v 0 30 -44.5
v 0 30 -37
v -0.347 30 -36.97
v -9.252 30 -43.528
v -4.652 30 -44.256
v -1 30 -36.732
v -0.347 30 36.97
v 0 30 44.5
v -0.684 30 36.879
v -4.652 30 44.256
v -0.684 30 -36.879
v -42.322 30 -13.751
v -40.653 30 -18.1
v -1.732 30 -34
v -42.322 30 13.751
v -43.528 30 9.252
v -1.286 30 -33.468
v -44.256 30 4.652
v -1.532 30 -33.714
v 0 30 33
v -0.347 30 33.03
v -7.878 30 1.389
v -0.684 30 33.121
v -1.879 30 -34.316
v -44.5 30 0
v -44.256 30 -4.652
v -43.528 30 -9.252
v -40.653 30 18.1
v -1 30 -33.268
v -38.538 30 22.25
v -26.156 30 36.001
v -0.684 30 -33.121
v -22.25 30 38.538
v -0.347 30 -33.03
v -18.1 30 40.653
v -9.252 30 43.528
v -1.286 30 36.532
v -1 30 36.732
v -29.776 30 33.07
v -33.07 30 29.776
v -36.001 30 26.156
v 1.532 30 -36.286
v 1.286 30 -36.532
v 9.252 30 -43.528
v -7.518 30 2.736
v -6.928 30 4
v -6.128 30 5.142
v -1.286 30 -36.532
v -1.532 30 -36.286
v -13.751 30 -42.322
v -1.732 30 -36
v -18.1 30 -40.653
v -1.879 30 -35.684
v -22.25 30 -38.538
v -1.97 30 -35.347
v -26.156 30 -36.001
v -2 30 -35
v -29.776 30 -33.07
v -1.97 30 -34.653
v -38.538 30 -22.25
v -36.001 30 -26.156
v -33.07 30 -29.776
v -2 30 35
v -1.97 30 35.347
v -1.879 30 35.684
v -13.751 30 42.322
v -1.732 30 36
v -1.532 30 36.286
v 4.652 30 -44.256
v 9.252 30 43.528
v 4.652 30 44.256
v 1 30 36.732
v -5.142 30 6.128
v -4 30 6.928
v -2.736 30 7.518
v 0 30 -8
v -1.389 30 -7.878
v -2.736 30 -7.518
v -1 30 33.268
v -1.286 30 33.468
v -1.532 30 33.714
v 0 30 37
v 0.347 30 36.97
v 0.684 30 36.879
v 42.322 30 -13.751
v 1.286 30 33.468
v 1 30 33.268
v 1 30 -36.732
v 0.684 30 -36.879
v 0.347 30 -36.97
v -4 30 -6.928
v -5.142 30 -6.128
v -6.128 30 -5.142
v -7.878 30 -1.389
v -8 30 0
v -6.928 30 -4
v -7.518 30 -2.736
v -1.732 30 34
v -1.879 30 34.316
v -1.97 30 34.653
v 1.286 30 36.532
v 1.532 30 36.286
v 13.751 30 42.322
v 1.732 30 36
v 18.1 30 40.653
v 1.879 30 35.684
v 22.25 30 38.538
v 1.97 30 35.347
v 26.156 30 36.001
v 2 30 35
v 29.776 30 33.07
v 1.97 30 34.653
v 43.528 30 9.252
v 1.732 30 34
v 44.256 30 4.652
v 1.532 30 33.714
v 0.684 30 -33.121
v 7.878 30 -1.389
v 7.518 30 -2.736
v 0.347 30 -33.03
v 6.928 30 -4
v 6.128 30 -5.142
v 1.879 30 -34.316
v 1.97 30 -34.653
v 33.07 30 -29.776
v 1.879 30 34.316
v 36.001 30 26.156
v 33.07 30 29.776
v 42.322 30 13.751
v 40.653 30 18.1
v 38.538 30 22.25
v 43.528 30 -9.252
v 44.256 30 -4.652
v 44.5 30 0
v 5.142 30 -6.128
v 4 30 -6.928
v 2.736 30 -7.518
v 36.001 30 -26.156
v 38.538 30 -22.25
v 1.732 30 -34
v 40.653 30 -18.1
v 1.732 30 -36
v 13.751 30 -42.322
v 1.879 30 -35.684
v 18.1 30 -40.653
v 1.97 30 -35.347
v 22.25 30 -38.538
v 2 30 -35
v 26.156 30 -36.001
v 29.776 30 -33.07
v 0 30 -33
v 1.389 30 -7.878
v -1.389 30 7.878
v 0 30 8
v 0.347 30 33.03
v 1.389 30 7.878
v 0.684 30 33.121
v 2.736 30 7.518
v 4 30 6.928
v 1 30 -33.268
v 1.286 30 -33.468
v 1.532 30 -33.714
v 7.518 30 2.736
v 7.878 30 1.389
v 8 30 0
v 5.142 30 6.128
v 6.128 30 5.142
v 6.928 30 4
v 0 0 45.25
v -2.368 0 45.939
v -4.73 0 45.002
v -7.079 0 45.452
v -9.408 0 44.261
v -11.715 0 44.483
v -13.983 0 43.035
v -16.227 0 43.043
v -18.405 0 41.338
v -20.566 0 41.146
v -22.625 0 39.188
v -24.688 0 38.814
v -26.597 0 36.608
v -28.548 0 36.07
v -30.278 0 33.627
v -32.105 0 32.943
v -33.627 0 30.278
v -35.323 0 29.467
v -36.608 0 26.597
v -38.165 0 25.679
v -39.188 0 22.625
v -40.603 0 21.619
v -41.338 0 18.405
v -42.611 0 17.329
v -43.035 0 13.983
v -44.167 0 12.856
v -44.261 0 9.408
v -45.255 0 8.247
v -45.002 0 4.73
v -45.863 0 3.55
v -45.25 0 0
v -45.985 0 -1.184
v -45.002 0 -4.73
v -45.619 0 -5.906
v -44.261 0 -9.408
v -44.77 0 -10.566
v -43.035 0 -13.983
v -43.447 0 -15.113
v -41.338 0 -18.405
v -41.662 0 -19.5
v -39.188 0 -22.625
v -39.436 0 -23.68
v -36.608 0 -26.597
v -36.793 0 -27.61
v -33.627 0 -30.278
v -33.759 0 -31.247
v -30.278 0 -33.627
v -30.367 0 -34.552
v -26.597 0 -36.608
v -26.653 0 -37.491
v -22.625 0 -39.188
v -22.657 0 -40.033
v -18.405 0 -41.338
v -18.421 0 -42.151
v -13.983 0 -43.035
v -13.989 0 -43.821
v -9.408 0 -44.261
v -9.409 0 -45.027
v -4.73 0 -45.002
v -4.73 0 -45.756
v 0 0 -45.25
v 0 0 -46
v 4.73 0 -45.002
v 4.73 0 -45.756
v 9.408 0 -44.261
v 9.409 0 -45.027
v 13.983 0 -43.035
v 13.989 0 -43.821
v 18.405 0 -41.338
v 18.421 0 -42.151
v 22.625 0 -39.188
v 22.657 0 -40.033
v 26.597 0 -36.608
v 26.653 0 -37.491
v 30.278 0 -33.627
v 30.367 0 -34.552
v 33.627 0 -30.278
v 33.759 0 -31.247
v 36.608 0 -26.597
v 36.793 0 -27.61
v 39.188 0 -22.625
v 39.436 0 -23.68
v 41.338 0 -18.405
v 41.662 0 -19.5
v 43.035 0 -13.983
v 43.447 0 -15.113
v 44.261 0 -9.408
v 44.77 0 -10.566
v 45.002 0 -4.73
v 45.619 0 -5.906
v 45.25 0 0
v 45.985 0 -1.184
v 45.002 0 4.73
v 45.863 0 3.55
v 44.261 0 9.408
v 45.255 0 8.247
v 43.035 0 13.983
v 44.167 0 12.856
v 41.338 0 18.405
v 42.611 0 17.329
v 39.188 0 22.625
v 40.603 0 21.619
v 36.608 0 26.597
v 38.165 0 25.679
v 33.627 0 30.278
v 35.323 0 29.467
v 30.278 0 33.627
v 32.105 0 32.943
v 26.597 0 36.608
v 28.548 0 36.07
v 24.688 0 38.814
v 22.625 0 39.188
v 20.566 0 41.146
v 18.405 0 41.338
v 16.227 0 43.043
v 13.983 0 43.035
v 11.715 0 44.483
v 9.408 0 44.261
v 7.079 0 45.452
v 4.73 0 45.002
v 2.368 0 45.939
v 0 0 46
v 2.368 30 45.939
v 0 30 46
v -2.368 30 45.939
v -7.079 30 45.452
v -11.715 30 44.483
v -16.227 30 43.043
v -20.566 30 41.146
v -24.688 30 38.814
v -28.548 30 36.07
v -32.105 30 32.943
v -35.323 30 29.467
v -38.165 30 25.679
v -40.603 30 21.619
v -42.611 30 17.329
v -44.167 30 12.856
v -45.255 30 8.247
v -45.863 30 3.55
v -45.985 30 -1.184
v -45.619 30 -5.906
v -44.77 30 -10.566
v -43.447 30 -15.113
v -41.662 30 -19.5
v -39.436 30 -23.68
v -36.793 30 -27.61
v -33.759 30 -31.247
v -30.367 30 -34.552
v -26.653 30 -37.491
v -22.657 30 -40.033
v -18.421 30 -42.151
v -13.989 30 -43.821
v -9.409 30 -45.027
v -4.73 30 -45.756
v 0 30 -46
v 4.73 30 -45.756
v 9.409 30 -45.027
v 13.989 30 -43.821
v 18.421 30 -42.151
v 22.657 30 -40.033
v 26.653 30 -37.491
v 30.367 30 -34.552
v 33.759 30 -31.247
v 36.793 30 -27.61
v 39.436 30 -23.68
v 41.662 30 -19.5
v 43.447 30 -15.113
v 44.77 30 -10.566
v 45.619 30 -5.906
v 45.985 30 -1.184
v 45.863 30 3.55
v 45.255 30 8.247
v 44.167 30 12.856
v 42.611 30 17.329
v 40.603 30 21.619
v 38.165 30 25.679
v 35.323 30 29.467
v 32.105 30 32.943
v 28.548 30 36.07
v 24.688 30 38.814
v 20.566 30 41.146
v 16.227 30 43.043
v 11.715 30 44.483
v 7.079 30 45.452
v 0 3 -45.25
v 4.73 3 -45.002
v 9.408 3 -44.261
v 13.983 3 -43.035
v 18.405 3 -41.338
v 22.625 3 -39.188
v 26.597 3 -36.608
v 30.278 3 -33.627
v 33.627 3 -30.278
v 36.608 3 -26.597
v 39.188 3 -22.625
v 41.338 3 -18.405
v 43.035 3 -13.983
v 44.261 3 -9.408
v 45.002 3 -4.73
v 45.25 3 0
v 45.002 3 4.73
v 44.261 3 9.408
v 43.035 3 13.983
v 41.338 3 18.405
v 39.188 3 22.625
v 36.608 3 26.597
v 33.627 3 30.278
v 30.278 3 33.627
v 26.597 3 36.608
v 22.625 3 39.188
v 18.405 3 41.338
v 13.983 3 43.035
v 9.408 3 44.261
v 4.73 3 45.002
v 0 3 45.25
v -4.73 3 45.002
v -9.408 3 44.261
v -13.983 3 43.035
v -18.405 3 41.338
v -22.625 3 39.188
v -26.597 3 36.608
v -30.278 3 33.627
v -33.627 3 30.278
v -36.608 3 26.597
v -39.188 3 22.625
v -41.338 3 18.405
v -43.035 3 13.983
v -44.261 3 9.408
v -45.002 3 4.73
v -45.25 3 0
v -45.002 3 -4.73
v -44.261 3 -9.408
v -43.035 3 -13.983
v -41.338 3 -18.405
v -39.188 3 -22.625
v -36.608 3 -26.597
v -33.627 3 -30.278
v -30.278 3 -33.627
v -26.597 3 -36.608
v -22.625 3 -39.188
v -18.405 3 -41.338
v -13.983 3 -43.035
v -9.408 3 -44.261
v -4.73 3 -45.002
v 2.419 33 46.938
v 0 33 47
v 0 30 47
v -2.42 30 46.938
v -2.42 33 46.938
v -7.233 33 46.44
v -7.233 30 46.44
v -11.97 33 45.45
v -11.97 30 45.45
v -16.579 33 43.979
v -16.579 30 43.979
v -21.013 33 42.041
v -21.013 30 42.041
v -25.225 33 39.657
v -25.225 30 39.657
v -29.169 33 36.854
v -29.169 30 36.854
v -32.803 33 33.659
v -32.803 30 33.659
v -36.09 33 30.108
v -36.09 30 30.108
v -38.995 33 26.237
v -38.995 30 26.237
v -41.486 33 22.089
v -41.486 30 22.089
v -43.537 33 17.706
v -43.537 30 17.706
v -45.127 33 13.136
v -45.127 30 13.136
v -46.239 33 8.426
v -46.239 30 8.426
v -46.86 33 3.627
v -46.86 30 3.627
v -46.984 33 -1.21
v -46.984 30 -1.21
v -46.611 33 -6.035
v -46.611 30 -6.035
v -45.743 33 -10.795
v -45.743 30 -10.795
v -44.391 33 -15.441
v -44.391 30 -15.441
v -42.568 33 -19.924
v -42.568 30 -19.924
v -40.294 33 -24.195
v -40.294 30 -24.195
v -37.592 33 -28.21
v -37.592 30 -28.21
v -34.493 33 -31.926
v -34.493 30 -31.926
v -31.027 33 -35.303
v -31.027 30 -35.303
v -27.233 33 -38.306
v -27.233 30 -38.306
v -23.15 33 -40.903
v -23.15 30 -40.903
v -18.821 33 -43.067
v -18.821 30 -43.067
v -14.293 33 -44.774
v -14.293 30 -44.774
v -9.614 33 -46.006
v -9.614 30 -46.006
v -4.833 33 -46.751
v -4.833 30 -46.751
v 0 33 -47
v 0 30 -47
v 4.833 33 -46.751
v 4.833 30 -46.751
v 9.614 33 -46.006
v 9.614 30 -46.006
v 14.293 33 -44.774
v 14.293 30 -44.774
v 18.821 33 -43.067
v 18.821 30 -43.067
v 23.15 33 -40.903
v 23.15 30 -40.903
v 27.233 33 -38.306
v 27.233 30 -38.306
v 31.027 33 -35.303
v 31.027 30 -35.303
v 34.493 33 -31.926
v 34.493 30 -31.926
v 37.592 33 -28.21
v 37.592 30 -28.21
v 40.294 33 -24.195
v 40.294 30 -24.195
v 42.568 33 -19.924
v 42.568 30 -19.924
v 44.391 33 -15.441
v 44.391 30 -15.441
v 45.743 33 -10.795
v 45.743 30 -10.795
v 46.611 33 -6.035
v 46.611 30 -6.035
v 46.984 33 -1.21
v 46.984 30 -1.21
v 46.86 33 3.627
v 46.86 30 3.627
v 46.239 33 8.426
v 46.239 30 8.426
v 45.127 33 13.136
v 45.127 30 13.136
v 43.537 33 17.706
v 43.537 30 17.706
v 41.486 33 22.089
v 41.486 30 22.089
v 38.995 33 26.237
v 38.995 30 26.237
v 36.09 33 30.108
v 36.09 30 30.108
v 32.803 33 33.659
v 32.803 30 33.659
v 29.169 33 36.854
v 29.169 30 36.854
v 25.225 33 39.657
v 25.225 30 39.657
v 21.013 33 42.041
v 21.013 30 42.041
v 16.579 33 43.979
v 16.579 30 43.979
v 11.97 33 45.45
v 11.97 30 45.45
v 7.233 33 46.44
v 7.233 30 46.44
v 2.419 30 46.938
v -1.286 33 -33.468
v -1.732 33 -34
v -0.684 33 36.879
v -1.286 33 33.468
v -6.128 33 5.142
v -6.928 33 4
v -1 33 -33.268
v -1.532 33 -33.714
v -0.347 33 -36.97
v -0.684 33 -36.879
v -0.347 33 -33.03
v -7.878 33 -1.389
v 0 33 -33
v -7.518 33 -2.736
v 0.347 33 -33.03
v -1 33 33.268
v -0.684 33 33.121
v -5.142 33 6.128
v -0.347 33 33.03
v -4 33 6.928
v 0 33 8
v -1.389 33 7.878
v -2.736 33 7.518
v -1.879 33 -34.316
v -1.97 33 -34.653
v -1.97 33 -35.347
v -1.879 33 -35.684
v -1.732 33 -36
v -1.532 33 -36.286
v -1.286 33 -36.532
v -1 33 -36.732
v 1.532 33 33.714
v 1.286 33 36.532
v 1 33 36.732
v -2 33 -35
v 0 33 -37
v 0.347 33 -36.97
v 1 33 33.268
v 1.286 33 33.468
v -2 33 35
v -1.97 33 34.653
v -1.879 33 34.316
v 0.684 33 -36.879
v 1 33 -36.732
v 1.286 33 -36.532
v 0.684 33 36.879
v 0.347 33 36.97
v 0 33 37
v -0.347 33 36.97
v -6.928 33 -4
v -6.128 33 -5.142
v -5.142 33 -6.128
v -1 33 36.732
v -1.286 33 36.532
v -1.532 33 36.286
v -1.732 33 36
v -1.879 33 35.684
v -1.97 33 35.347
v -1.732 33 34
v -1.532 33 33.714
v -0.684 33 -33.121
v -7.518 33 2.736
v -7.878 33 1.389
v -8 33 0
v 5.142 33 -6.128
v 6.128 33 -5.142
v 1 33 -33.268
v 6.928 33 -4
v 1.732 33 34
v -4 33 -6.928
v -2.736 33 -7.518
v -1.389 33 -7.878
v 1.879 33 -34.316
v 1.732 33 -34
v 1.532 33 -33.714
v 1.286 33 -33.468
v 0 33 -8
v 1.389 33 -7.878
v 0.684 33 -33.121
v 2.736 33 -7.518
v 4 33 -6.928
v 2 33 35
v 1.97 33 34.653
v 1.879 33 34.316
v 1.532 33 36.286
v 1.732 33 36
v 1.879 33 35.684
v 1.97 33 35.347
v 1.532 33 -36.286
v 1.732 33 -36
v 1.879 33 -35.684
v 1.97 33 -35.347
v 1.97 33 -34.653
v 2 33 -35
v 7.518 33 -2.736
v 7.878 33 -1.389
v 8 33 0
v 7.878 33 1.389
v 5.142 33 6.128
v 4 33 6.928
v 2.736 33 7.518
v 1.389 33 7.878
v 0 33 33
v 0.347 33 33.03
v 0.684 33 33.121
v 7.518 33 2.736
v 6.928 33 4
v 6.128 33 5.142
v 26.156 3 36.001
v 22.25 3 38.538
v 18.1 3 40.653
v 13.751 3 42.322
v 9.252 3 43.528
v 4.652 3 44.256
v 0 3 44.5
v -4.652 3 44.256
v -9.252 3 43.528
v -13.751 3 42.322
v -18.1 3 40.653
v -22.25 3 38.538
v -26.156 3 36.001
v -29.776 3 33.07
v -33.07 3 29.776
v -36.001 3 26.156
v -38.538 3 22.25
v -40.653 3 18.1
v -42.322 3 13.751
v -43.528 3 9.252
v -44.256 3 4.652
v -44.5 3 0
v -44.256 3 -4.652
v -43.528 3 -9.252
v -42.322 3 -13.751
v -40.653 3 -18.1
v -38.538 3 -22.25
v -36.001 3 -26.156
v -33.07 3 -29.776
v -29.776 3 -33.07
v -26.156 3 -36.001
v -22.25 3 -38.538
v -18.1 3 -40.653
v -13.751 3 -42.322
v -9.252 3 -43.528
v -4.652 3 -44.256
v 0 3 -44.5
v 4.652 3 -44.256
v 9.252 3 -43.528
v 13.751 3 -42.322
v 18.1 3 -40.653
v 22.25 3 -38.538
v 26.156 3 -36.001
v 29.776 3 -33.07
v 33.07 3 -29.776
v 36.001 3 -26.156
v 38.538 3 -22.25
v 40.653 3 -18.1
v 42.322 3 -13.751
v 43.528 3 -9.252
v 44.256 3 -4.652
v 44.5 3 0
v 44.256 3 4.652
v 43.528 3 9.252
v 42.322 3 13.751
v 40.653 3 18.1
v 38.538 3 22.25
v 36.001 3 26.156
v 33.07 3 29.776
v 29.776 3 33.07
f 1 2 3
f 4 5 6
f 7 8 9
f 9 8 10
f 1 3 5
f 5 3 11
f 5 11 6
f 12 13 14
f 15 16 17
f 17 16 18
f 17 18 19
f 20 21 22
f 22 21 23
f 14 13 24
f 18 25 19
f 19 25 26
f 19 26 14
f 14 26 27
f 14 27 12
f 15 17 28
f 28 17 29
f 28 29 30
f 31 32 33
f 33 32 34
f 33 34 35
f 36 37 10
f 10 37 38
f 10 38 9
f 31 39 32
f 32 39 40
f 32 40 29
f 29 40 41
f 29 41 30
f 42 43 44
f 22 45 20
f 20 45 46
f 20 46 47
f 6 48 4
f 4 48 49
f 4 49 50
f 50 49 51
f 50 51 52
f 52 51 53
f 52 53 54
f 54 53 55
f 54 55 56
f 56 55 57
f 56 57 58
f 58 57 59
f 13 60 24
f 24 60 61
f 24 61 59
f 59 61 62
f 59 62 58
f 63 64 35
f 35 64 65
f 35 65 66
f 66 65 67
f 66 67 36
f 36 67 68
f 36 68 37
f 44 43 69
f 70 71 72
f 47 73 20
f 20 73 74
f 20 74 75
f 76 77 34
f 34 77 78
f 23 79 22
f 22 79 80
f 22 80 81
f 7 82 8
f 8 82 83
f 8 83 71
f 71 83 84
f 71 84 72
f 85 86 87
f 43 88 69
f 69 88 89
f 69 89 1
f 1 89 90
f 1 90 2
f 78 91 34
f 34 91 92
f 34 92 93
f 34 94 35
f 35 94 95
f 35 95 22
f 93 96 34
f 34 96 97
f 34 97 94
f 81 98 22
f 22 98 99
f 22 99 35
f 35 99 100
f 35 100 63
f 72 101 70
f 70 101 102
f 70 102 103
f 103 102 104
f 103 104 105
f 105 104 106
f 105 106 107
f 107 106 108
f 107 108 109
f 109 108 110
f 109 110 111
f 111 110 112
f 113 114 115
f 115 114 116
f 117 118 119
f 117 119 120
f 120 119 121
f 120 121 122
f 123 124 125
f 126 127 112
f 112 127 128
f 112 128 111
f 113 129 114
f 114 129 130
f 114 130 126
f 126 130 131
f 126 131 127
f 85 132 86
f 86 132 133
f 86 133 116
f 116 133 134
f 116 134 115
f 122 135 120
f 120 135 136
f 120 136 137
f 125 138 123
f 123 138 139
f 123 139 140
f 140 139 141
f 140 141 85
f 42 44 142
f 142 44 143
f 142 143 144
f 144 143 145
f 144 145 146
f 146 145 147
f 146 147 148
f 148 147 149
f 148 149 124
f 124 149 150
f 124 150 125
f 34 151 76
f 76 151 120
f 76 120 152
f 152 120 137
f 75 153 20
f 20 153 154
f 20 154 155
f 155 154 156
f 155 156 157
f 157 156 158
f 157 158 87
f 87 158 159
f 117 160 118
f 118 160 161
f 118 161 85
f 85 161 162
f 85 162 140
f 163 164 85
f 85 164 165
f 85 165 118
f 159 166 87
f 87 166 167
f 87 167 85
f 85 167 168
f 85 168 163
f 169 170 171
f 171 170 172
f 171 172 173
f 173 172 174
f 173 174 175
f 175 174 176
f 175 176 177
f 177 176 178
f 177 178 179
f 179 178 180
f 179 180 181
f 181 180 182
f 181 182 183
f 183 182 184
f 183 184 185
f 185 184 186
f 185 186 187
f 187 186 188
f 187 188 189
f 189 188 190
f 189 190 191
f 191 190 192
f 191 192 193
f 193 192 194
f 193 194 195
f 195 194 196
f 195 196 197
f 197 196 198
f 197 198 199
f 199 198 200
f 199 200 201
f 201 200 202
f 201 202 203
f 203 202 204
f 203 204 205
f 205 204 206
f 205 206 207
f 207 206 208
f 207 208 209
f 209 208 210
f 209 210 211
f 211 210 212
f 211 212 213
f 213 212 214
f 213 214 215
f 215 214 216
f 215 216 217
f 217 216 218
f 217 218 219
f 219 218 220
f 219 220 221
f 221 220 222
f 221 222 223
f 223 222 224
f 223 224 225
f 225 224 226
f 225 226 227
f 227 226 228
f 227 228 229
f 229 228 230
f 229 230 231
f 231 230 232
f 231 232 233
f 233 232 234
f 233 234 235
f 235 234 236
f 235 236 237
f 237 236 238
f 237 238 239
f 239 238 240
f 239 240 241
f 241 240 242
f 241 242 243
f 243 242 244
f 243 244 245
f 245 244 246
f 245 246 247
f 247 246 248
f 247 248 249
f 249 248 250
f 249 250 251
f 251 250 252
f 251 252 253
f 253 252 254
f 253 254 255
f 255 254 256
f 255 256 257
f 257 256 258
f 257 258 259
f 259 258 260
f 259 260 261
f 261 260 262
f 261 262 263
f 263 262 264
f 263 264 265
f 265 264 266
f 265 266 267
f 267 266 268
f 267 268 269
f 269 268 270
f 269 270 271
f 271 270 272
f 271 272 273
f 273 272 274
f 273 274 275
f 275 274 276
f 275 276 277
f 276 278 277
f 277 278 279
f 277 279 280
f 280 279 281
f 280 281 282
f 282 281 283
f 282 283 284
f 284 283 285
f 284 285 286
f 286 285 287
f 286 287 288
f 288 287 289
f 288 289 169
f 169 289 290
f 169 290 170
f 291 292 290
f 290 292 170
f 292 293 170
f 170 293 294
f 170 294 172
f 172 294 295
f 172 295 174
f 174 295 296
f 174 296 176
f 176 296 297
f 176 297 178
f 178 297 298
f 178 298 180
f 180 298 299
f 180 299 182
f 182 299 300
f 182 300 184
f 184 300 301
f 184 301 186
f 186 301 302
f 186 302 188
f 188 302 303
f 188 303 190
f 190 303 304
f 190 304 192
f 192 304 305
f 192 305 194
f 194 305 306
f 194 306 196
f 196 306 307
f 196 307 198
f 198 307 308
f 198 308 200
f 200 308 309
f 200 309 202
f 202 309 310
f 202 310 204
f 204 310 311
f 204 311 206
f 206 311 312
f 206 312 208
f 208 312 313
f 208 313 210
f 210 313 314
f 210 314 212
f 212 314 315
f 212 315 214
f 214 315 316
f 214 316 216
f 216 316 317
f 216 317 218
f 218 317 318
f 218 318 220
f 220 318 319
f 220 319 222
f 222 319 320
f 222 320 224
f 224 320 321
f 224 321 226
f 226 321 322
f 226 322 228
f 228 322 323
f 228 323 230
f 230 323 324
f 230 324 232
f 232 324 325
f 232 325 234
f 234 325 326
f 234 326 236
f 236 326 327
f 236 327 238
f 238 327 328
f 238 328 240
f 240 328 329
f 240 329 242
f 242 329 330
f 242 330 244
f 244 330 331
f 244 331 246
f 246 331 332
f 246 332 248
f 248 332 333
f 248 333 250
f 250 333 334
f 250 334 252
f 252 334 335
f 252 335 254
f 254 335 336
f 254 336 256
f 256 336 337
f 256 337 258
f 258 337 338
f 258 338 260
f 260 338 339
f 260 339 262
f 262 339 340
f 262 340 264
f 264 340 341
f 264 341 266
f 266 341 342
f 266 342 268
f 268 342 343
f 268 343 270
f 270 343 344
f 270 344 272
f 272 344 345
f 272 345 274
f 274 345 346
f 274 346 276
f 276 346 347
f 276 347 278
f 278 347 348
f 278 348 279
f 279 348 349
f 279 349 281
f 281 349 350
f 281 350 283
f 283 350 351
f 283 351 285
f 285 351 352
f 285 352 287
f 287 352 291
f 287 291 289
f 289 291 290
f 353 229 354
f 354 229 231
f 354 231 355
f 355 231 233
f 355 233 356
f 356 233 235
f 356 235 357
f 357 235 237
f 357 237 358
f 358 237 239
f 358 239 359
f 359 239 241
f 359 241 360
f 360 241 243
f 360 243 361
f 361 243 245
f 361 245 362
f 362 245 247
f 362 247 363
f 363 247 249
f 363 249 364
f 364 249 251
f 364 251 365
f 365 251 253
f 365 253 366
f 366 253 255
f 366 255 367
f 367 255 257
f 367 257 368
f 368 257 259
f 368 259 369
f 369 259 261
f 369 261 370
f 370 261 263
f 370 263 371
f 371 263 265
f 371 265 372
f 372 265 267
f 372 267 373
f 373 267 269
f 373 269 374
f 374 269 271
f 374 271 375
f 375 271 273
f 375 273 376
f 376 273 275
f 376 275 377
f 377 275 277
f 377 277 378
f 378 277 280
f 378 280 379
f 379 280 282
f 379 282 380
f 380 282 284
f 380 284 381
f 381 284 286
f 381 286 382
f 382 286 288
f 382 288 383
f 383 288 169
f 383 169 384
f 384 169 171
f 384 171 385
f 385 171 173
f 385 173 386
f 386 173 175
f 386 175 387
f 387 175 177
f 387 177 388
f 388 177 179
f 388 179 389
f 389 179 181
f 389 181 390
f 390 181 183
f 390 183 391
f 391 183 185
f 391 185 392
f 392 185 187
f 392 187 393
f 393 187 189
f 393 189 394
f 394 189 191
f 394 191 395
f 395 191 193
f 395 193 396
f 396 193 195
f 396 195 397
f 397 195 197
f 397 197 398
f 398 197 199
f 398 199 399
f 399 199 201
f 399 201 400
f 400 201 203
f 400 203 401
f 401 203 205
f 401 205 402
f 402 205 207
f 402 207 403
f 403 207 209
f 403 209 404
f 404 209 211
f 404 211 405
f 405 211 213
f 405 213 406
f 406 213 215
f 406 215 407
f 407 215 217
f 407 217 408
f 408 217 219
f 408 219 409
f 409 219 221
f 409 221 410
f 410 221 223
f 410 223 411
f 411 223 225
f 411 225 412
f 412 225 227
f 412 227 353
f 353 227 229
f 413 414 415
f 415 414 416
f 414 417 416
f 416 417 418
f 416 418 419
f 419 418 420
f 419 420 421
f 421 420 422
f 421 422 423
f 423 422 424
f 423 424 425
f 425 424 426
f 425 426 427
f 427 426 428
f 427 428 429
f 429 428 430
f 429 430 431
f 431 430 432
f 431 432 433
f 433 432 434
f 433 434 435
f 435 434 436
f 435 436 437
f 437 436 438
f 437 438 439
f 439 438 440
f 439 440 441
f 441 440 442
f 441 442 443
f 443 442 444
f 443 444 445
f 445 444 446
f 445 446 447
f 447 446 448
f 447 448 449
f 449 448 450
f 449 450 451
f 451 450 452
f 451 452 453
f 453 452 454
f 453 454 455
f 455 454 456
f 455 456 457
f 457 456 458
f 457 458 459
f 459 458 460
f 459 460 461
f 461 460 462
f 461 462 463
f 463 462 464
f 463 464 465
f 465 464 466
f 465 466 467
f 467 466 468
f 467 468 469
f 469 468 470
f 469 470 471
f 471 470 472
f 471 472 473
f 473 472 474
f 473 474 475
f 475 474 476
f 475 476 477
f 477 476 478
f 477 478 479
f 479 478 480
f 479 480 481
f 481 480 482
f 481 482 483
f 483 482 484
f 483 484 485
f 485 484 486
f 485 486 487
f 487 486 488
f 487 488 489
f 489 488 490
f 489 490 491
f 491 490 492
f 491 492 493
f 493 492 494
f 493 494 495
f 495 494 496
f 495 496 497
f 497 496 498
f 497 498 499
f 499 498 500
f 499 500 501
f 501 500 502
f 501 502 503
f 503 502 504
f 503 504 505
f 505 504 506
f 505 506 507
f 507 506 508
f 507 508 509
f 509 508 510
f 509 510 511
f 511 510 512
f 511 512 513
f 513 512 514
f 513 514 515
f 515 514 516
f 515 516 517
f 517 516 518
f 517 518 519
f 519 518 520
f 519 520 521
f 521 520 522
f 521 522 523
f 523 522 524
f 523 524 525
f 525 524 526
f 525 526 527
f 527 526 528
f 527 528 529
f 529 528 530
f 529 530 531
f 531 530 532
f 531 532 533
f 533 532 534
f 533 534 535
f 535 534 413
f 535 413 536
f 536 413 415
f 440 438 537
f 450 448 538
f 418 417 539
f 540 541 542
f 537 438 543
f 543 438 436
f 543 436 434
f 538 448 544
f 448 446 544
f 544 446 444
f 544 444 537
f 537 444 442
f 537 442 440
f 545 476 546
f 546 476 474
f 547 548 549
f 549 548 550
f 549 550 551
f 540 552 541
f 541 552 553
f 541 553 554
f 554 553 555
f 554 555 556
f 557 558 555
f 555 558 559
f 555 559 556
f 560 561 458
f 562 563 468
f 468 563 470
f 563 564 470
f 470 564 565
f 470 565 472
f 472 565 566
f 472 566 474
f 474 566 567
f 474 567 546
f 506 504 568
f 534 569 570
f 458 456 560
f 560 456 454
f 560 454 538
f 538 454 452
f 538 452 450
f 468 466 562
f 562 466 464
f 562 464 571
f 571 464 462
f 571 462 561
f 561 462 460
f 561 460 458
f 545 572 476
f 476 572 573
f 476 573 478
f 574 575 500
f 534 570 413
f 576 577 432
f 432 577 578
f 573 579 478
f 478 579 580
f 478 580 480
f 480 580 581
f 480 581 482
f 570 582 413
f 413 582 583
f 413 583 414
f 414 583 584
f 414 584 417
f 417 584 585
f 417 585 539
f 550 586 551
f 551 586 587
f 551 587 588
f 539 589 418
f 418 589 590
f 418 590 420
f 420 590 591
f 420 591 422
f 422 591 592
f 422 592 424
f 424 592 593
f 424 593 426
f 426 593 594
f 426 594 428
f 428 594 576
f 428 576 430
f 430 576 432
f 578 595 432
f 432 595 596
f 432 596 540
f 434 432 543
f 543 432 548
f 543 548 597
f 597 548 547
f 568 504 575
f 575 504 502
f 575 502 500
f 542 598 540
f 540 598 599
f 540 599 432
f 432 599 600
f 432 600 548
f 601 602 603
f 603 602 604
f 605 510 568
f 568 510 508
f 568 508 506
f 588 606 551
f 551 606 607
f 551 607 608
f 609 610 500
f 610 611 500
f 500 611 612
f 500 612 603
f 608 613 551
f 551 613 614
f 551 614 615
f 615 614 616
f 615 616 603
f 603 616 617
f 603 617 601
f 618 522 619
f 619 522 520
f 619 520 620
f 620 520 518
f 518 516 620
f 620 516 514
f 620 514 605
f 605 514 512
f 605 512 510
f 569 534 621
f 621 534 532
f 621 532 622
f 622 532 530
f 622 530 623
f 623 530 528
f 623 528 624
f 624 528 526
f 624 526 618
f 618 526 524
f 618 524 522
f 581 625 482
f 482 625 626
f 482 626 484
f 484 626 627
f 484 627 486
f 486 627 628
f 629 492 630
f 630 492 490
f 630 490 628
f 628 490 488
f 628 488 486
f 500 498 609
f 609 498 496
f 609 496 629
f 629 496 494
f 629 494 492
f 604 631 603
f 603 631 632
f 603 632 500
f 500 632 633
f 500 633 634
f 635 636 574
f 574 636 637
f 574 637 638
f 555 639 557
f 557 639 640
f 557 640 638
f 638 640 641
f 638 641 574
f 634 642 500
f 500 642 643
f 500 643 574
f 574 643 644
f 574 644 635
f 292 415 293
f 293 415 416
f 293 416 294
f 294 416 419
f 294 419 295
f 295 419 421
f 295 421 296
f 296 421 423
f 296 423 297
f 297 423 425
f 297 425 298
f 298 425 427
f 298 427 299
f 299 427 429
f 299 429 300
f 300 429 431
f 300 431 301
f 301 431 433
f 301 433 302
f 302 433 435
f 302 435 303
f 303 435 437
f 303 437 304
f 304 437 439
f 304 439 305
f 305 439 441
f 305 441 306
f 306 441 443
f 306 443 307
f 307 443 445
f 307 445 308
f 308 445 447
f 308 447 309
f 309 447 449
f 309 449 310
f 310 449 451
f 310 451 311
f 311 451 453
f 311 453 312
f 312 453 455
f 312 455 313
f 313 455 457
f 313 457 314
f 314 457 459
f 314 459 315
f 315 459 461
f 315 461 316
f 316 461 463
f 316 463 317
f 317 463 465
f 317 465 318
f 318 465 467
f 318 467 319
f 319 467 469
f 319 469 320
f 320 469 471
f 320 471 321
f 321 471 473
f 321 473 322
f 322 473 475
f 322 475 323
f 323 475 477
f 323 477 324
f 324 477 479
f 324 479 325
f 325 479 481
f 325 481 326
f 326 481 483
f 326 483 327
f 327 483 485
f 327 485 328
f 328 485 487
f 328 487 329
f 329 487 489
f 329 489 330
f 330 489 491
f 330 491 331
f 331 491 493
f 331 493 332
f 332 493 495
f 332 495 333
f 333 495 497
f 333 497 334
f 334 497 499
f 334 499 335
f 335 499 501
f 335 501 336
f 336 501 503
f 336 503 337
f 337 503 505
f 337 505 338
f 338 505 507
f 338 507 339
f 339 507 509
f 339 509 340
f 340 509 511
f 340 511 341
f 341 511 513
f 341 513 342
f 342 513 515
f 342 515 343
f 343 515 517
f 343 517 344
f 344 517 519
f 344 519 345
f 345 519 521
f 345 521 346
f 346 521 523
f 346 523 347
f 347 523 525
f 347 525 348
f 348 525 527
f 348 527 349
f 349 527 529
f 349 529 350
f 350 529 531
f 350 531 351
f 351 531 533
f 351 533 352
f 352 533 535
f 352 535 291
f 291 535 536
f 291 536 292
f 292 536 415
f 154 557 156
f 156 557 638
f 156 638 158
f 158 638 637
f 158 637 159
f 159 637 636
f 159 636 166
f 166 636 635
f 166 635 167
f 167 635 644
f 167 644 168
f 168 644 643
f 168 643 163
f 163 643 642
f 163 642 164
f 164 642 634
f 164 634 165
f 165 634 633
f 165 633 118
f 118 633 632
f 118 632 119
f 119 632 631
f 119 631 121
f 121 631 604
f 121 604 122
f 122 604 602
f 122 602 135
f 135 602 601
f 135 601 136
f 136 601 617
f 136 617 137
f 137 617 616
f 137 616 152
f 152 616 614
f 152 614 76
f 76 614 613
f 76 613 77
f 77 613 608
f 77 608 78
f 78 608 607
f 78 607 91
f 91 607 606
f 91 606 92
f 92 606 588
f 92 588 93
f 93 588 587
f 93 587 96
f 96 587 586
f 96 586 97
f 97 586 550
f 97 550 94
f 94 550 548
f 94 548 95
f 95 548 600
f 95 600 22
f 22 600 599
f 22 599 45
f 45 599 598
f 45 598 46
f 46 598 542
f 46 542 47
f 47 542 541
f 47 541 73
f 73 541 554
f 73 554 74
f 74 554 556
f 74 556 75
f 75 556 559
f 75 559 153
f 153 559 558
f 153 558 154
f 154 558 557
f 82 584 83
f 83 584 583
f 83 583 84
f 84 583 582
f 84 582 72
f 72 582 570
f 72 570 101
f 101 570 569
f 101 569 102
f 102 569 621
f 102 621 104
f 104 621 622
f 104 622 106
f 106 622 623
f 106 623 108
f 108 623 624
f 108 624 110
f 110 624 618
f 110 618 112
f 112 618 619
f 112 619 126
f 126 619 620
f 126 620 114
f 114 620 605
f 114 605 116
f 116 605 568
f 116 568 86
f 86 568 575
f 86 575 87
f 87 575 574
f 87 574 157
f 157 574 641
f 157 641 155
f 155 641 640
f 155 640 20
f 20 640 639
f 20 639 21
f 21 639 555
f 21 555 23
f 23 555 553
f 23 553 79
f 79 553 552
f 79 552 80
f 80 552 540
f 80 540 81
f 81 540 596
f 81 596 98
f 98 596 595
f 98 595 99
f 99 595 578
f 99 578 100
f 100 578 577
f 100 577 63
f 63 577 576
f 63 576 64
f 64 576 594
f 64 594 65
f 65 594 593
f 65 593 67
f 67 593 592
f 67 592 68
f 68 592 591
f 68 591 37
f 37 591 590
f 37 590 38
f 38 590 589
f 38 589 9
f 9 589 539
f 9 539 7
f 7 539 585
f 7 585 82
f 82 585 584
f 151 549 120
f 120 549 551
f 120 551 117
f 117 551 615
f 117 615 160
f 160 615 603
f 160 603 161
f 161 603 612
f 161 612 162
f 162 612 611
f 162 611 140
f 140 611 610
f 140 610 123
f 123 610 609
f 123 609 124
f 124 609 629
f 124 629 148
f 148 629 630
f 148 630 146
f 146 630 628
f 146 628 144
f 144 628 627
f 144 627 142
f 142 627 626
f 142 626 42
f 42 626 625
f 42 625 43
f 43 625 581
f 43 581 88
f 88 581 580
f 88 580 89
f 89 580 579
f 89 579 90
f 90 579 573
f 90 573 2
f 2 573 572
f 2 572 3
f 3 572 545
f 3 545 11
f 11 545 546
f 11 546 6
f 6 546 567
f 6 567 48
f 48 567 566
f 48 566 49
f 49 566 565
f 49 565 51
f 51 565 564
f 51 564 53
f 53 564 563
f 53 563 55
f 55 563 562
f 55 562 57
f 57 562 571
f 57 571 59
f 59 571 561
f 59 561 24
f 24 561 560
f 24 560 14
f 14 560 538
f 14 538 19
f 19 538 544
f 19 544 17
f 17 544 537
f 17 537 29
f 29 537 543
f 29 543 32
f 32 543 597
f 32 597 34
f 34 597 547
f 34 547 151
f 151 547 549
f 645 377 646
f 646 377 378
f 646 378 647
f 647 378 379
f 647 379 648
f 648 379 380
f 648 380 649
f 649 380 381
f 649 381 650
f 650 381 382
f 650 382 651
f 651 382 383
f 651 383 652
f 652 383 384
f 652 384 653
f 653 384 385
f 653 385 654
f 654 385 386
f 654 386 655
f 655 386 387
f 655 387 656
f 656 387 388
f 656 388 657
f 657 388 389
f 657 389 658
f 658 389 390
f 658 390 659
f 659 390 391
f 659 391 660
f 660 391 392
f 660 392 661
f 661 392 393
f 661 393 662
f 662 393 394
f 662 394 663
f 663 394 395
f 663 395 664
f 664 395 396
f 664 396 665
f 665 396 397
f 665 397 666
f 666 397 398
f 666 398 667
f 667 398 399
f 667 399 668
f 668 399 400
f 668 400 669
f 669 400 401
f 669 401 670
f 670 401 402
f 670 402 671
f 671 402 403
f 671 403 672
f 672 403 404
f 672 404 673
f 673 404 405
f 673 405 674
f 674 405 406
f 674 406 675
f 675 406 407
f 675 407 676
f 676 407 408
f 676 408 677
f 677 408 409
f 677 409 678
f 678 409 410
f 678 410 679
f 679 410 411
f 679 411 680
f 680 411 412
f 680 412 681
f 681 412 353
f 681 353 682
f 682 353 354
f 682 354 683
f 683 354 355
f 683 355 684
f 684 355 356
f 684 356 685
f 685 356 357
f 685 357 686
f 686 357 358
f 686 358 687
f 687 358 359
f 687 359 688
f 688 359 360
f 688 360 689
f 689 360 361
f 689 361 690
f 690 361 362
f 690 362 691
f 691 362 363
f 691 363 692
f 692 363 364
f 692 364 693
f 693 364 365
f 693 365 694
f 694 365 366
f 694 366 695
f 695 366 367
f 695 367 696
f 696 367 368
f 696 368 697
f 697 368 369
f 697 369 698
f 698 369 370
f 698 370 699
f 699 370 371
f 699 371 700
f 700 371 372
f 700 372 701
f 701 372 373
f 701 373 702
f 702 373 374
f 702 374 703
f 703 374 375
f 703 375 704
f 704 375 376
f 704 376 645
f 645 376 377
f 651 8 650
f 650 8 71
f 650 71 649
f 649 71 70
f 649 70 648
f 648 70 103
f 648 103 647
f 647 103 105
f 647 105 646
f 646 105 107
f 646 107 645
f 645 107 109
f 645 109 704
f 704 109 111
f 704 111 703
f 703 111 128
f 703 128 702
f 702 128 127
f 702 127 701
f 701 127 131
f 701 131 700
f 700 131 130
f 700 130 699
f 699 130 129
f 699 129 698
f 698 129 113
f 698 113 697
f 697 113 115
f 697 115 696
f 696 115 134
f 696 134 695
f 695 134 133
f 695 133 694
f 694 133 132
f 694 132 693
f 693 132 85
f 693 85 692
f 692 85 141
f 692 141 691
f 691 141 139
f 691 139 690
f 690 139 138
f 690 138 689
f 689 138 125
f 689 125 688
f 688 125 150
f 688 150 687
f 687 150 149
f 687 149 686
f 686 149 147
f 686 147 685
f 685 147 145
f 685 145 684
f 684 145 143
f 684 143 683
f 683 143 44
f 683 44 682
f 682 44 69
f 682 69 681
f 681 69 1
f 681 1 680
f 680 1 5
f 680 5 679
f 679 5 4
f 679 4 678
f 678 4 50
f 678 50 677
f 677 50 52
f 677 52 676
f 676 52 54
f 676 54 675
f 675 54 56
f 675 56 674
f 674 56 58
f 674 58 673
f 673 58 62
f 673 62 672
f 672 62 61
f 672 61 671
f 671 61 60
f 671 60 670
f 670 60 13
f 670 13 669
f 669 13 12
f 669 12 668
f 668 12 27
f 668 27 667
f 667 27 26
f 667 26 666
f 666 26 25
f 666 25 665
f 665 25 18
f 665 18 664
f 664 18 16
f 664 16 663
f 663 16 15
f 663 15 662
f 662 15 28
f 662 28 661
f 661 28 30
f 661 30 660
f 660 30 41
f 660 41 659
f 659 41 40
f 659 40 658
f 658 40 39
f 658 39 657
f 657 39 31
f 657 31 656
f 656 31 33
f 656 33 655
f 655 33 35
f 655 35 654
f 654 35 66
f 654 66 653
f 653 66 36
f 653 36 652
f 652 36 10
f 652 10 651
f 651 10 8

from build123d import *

# Parameters (mm, degrees)
SKETCH1_R           = 46
SKETCH1_R_2         = 45.25
BOSS_EXTRUDE1_DEPTH = 30
SKETCH3_R           = 47
BOSS_EXTRUDE2_DEPTH = 3
SKETCH4_R           = 2
SKETCH4_R_2         = 8
CUT_EXTRUDE1_DEPTH  = 75.209163855
BOSS_EXTRUDE3_START = 27
SKETCH5_R           = 45.25
SKETCH5_R_2         = 44.5
BOSS_EXTRUDE3_DEPTH = 27


with BuildPart() as part:
    # Sketch1 → Boss-Extrude1 (new body)
    with BuildSketch(Plane(origin=(0, 0, 0), x_dir=(1, 0, 0), z_dir=(0, 1, 0))):
        with Locations(Location((0, 0, 0), (0, 0, 270))):
            Circle(SKETCH1_R)
        with Locations(Location((0, 0, 0), (0, 0, 270))):
            Circle(SKETCH1_R_2, mode=Mode.SUBTRACT)
    extrude(amount=BOSS_EXTRUDE1_DEPTH)

    # Sketch3 → Boss-Extrude2 (add)
    with BuildSketch(Plane(origin=(0, 30, 0), x_dir=(1, 0, 0), z_dir=(0, 1, 0))):
        with Locations(Location((0, 0, 0), (0, 0, 270))):
            Circle(SKETCH3_R)
    extrude(amount=BOSS_EXTRUDE2_DEPTH)

    # Sketch4 → Cut-Extrude1 (cut, through all)
    with BuildSketch(Plane(origin=(0, 33, 0), x_dir=(1, 0, 0), z_dir=(0, 1, 0))):
        with Locations(Location((0, 35, 0), (0, 0, 270))):
            Circle(SKETCH4_R)
        with Locations(Location((0, -35, 0), (0, 0, 270))):
            Circle(SKETCH4_R)
        with Locations(Location((0, 0, 0), (0, 0, 270))):
            Circle(SKETCH4_R_2)
    extrude(amount=-CUT_EXTRUDE1_DEPTH, mode=Mode.SUBTRACT)

    # Sketch5 → Boss-Extrude3 (add)
    with BuildSketch(Plane.XZ.offset(-30).offset(BOSS_EXTRUDE3_START)):
        with Locations(Location((0, 0, 0), (0, 0, 270))):
            Circle(SKETCH5_R)
        with Locations(Location((0, 0, 0), (0, 0, 270))):
            Circle(SKETCH5_R_2, mode=Mode.SUBTRACT)
    extrude(amount=-BOSS_EXTRUDE3_DEPTH)


solid = part.part
